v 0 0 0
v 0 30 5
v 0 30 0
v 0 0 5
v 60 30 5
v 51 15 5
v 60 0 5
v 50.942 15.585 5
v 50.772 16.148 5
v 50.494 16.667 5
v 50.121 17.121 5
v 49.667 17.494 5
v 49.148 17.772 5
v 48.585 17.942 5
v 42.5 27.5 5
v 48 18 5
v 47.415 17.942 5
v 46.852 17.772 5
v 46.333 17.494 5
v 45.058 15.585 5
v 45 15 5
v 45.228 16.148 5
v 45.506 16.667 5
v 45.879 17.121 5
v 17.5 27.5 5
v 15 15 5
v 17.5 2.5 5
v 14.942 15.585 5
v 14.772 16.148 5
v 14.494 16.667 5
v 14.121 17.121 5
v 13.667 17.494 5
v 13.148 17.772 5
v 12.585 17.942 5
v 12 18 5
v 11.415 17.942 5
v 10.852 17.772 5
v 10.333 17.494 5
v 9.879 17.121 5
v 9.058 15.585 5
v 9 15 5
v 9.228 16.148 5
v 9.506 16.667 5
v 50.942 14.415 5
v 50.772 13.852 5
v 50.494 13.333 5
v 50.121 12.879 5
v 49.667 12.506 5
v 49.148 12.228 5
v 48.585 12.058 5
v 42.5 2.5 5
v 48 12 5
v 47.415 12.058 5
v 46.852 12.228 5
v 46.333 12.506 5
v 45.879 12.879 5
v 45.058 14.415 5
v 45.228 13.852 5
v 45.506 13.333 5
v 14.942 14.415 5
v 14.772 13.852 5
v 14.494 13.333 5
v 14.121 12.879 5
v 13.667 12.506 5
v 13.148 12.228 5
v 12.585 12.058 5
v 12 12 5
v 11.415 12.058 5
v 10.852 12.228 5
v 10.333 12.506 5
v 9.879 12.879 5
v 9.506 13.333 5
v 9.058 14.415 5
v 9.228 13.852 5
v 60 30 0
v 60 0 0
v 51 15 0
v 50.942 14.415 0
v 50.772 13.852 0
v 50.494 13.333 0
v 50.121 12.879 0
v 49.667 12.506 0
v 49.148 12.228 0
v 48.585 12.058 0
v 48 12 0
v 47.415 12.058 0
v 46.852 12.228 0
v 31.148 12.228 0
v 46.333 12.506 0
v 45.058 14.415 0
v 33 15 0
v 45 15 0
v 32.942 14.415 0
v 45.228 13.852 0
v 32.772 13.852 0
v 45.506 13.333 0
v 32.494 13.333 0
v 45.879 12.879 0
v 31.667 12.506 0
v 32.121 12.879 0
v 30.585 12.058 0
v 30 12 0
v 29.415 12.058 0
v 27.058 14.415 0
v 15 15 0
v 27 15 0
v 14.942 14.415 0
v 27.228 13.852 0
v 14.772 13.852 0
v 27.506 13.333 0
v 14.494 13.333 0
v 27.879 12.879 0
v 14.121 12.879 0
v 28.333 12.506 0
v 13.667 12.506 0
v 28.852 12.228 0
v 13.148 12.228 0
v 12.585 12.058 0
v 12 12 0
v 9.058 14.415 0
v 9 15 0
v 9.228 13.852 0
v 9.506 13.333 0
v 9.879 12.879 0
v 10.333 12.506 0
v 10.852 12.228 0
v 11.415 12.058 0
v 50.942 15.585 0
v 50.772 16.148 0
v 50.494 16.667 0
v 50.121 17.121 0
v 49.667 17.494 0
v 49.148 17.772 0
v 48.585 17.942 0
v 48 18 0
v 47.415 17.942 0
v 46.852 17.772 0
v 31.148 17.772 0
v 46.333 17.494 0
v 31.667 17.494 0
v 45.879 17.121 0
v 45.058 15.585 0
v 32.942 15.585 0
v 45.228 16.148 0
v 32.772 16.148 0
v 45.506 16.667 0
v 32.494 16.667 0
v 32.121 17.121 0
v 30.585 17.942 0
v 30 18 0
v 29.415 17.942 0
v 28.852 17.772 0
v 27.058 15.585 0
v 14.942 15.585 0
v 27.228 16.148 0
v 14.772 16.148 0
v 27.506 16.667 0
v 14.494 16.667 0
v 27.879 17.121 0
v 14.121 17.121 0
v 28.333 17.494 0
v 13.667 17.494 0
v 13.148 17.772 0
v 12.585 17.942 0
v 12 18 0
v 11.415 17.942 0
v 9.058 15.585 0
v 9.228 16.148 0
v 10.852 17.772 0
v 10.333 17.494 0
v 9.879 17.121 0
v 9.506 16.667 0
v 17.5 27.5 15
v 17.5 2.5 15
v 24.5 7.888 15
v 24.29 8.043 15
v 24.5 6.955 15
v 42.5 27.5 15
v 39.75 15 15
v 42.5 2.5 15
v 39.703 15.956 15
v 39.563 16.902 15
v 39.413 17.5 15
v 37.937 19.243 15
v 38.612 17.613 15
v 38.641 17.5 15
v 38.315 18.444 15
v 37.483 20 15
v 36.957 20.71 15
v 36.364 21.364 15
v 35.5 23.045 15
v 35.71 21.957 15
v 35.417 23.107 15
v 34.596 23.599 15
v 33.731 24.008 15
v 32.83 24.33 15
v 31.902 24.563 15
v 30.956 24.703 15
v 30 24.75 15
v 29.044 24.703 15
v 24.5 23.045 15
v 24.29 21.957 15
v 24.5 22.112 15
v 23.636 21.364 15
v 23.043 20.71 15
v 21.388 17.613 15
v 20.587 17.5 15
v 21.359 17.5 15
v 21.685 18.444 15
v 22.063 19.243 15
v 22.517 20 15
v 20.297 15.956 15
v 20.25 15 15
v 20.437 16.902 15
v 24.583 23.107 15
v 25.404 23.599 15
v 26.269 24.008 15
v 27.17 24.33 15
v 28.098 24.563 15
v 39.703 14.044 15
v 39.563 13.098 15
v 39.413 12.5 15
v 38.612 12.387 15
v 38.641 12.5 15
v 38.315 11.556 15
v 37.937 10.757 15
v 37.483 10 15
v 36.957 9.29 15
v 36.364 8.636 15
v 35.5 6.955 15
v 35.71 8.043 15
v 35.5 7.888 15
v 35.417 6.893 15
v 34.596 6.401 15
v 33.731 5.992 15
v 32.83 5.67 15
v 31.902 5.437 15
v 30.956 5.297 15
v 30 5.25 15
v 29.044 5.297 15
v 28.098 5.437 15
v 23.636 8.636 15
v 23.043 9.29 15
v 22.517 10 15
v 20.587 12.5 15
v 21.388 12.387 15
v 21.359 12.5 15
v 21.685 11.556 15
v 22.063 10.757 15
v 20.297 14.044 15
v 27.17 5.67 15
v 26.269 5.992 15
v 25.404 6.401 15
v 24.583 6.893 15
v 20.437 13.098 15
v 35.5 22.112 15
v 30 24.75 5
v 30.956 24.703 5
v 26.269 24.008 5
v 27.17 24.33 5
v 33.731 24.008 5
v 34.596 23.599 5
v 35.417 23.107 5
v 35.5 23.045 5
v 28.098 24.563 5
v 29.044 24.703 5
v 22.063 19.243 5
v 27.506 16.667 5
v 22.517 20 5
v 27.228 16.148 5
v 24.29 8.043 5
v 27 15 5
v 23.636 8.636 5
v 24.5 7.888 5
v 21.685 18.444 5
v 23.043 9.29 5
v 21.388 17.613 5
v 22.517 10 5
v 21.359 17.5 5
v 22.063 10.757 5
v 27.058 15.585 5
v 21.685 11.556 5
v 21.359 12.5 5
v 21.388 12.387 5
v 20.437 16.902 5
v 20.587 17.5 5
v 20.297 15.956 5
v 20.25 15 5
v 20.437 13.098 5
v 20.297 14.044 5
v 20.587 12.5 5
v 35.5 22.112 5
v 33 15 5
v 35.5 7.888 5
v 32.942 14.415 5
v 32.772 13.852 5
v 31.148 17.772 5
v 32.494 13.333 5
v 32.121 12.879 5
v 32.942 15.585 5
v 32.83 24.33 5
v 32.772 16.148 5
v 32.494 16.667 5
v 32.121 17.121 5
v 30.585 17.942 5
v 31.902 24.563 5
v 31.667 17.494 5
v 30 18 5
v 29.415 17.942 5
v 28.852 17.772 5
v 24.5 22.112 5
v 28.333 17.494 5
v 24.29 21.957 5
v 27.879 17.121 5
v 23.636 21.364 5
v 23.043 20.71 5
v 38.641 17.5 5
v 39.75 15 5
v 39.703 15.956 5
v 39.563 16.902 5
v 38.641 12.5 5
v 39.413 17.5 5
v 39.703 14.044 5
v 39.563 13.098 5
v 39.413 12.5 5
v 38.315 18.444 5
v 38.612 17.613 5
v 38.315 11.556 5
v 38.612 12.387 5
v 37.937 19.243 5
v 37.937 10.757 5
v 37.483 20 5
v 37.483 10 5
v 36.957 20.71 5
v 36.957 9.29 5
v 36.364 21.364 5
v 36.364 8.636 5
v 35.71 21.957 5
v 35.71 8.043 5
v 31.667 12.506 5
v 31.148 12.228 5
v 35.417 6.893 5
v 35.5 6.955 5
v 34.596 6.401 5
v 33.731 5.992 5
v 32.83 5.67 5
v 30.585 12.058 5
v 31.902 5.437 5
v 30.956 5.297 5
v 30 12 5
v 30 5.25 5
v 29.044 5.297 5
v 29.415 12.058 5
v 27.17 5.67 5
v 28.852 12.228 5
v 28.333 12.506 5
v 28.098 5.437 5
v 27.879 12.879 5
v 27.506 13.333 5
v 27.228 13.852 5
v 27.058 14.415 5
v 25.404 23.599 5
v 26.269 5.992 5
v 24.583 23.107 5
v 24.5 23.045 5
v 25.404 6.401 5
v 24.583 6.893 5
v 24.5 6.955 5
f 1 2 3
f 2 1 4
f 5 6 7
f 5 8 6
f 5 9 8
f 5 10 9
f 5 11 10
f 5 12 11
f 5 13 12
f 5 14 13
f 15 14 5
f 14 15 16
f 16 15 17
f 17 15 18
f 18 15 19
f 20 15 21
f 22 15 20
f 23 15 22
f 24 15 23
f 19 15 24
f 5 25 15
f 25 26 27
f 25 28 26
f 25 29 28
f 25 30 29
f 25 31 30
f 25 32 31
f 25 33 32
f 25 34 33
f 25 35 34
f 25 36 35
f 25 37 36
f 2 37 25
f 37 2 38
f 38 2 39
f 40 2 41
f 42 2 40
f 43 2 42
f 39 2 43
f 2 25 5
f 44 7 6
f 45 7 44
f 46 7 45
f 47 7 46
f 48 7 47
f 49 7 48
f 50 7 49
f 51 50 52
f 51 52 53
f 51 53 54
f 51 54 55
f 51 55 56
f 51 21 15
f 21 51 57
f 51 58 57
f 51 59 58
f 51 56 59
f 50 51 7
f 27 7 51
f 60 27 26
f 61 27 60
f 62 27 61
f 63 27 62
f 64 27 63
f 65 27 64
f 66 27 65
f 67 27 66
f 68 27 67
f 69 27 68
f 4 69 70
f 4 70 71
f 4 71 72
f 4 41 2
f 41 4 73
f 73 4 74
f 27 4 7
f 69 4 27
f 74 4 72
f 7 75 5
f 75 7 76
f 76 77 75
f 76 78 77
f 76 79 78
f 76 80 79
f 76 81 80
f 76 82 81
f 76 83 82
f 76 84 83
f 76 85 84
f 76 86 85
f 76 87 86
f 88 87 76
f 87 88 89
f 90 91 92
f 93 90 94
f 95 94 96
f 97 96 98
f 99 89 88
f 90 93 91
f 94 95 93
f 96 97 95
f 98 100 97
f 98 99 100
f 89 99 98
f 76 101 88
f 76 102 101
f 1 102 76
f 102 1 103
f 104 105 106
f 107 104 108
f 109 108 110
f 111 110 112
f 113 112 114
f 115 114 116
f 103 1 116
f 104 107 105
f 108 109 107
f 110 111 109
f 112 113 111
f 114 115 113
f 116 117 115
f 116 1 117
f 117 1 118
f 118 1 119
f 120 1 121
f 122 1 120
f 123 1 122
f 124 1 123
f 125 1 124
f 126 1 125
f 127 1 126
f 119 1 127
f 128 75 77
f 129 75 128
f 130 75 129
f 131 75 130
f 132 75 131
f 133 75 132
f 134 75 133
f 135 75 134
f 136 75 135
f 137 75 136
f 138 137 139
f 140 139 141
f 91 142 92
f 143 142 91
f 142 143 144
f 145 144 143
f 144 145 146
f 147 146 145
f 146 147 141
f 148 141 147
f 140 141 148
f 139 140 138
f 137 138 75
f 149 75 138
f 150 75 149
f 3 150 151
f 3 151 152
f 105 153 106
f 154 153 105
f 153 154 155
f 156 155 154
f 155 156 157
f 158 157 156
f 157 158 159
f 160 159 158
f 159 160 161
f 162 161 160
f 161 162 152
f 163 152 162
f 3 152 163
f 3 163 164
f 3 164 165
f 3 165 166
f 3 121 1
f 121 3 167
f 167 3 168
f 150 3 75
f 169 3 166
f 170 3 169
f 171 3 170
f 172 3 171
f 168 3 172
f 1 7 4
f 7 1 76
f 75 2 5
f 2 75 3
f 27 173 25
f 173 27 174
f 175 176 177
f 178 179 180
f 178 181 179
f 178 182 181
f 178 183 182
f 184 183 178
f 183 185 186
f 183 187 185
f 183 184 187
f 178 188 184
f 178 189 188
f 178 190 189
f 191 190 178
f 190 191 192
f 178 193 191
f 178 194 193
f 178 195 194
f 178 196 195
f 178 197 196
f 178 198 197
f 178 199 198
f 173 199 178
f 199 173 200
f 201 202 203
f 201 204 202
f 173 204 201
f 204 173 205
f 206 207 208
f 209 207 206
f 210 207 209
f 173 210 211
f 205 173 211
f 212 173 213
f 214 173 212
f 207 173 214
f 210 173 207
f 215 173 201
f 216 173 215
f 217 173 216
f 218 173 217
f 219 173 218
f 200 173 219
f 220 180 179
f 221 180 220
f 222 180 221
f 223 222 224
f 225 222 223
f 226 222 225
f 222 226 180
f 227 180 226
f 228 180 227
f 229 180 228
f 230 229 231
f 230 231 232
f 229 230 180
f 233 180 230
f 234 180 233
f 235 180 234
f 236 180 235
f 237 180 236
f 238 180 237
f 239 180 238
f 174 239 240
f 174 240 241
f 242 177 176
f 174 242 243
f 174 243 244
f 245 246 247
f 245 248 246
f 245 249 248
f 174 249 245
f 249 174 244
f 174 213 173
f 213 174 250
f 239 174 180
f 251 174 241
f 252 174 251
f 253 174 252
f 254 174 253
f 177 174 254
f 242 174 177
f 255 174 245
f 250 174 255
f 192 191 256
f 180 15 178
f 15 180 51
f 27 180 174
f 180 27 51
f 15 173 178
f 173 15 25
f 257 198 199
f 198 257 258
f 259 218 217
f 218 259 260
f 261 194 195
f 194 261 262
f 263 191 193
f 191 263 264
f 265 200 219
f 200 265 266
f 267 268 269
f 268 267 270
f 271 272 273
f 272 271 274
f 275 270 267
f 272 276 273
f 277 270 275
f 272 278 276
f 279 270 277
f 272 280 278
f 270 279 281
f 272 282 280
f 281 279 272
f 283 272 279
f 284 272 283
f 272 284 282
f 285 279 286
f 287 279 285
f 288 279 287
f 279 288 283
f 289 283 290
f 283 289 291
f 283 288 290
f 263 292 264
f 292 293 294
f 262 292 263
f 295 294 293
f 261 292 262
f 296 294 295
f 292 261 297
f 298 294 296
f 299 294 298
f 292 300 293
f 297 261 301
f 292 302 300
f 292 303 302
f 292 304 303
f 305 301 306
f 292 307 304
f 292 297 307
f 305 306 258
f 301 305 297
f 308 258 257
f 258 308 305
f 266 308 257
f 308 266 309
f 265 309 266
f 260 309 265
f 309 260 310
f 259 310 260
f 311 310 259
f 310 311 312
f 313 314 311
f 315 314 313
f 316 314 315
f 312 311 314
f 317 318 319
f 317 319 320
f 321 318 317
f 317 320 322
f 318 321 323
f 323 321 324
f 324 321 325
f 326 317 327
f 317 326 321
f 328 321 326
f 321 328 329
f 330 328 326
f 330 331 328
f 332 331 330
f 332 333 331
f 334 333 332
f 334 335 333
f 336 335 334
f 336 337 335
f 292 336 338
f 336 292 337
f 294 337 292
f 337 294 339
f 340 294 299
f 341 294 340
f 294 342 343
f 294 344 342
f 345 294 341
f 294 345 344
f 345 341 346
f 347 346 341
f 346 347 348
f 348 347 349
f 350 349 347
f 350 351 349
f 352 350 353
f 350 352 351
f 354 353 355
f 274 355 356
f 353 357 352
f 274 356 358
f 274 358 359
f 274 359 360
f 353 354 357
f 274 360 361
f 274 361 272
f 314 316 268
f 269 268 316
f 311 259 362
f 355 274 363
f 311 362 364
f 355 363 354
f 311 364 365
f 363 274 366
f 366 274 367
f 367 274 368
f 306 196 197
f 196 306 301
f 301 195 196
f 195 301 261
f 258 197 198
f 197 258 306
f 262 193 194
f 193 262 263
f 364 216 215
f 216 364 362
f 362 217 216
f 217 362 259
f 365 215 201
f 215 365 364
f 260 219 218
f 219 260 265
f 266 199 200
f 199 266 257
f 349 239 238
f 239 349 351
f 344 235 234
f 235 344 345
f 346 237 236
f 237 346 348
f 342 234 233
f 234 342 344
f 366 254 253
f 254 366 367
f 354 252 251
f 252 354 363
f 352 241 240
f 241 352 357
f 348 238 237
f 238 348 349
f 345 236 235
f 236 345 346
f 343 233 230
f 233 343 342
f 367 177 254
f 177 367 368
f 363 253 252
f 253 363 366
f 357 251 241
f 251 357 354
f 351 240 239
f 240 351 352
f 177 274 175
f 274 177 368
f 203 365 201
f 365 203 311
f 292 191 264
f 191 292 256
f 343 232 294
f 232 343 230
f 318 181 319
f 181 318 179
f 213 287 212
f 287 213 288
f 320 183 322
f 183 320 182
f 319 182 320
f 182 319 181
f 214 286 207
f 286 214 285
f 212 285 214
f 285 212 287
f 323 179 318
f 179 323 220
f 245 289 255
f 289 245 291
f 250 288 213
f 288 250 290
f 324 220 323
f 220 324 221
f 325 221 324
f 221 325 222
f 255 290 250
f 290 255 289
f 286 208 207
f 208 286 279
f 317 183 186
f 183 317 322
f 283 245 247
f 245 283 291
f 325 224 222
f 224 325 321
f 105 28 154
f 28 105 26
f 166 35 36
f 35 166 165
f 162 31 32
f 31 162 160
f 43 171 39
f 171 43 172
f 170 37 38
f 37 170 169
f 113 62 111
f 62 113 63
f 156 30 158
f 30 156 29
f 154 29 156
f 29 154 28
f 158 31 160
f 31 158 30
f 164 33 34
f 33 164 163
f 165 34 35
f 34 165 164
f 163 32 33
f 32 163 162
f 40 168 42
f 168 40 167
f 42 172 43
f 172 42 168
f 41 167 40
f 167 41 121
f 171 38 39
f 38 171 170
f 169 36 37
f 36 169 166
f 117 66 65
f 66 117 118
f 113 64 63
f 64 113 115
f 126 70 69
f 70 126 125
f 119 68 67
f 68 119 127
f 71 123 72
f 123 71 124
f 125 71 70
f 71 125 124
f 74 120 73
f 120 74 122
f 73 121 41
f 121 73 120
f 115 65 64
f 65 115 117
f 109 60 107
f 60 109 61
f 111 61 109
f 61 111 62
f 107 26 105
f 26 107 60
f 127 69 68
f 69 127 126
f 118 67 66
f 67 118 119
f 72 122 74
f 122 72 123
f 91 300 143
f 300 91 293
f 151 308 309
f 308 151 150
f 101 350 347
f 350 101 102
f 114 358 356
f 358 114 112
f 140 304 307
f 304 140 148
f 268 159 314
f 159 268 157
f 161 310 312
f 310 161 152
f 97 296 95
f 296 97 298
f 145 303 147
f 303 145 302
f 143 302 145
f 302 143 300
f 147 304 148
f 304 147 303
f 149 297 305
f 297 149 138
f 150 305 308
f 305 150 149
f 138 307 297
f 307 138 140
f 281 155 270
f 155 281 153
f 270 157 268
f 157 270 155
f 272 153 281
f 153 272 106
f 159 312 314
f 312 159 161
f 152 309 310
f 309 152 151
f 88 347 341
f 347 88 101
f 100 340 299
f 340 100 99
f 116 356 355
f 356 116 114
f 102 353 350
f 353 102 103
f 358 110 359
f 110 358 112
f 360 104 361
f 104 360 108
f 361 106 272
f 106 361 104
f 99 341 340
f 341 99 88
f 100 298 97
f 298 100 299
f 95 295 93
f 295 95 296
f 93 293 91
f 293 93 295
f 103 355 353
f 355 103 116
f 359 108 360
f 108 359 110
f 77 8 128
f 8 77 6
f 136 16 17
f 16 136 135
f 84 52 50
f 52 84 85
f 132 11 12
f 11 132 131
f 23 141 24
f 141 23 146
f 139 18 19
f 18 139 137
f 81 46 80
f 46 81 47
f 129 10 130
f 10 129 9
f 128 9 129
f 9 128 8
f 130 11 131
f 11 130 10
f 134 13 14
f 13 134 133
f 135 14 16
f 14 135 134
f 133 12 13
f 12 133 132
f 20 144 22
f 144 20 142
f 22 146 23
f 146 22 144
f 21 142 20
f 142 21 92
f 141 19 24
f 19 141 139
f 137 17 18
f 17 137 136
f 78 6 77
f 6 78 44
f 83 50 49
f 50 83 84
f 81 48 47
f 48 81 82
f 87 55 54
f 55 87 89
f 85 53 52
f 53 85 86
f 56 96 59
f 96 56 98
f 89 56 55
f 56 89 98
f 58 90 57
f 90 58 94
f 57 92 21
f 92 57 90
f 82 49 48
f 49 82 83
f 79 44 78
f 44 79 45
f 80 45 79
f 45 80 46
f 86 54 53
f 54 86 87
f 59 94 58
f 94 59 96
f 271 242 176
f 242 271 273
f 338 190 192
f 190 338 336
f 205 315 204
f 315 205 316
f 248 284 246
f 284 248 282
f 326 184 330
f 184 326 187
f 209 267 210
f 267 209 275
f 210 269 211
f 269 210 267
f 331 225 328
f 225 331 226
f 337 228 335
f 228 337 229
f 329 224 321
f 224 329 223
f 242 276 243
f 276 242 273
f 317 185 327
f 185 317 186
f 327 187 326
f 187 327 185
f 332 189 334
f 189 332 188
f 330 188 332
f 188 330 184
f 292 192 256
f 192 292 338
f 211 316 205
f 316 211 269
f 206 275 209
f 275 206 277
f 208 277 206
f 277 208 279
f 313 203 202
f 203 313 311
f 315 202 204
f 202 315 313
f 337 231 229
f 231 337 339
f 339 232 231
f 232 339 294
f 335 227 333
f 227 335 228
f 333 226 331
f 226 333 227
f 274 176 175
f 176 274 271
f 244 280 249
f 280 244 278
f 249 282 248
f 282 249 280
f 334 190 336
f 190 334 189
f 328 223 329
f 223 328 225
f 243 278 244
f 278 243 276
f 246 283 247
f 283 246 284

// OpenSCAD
// Suporte da lampada da seta - Bandeirante (lado motorista)

difference() {
    union() {
        // Base plate
        cube([60, 30, 5]);

        // Raised block with lamp hole (17mm diameter)
        translate([30, 15, 5])
            translate([-12.5, -12.5, 0])
                cube([25, 25, 10]);
    }

    // 18mm diameter lamp hole (driver side)
    translate([30, 15, 5])
        cylinder(h=35, d=18, $fn=64);

    // Wire channels: cylinder 1.5mm wider than hole, trimmed to 11mm middle
    translate([30, 15, 5])
        intersection() {
            cylinder(h=35, d=18 + 1.5, $fn=64);
            translate([-5.5, -20, 0])
                cube([11, 40, 35]);
        }

    // Perpendicular wire channels: same cylinder, trimmed to 5mm middle
    translate([30, 15, 5])
        intersection() {
            cylinder(h=35, d=18 + 1.5, $fn=64);
            translate([-20, -2.5, 0])
                cube([40, 5, 35]);
        }

    // 3x 6mm mounting holes, spaced 18mm apart
    for (dx = [-18, 0, 18]) {
        translate([30 + dx, 15, -2])
            cylinder(h=45, d=6, $fn=32);
    }
}
